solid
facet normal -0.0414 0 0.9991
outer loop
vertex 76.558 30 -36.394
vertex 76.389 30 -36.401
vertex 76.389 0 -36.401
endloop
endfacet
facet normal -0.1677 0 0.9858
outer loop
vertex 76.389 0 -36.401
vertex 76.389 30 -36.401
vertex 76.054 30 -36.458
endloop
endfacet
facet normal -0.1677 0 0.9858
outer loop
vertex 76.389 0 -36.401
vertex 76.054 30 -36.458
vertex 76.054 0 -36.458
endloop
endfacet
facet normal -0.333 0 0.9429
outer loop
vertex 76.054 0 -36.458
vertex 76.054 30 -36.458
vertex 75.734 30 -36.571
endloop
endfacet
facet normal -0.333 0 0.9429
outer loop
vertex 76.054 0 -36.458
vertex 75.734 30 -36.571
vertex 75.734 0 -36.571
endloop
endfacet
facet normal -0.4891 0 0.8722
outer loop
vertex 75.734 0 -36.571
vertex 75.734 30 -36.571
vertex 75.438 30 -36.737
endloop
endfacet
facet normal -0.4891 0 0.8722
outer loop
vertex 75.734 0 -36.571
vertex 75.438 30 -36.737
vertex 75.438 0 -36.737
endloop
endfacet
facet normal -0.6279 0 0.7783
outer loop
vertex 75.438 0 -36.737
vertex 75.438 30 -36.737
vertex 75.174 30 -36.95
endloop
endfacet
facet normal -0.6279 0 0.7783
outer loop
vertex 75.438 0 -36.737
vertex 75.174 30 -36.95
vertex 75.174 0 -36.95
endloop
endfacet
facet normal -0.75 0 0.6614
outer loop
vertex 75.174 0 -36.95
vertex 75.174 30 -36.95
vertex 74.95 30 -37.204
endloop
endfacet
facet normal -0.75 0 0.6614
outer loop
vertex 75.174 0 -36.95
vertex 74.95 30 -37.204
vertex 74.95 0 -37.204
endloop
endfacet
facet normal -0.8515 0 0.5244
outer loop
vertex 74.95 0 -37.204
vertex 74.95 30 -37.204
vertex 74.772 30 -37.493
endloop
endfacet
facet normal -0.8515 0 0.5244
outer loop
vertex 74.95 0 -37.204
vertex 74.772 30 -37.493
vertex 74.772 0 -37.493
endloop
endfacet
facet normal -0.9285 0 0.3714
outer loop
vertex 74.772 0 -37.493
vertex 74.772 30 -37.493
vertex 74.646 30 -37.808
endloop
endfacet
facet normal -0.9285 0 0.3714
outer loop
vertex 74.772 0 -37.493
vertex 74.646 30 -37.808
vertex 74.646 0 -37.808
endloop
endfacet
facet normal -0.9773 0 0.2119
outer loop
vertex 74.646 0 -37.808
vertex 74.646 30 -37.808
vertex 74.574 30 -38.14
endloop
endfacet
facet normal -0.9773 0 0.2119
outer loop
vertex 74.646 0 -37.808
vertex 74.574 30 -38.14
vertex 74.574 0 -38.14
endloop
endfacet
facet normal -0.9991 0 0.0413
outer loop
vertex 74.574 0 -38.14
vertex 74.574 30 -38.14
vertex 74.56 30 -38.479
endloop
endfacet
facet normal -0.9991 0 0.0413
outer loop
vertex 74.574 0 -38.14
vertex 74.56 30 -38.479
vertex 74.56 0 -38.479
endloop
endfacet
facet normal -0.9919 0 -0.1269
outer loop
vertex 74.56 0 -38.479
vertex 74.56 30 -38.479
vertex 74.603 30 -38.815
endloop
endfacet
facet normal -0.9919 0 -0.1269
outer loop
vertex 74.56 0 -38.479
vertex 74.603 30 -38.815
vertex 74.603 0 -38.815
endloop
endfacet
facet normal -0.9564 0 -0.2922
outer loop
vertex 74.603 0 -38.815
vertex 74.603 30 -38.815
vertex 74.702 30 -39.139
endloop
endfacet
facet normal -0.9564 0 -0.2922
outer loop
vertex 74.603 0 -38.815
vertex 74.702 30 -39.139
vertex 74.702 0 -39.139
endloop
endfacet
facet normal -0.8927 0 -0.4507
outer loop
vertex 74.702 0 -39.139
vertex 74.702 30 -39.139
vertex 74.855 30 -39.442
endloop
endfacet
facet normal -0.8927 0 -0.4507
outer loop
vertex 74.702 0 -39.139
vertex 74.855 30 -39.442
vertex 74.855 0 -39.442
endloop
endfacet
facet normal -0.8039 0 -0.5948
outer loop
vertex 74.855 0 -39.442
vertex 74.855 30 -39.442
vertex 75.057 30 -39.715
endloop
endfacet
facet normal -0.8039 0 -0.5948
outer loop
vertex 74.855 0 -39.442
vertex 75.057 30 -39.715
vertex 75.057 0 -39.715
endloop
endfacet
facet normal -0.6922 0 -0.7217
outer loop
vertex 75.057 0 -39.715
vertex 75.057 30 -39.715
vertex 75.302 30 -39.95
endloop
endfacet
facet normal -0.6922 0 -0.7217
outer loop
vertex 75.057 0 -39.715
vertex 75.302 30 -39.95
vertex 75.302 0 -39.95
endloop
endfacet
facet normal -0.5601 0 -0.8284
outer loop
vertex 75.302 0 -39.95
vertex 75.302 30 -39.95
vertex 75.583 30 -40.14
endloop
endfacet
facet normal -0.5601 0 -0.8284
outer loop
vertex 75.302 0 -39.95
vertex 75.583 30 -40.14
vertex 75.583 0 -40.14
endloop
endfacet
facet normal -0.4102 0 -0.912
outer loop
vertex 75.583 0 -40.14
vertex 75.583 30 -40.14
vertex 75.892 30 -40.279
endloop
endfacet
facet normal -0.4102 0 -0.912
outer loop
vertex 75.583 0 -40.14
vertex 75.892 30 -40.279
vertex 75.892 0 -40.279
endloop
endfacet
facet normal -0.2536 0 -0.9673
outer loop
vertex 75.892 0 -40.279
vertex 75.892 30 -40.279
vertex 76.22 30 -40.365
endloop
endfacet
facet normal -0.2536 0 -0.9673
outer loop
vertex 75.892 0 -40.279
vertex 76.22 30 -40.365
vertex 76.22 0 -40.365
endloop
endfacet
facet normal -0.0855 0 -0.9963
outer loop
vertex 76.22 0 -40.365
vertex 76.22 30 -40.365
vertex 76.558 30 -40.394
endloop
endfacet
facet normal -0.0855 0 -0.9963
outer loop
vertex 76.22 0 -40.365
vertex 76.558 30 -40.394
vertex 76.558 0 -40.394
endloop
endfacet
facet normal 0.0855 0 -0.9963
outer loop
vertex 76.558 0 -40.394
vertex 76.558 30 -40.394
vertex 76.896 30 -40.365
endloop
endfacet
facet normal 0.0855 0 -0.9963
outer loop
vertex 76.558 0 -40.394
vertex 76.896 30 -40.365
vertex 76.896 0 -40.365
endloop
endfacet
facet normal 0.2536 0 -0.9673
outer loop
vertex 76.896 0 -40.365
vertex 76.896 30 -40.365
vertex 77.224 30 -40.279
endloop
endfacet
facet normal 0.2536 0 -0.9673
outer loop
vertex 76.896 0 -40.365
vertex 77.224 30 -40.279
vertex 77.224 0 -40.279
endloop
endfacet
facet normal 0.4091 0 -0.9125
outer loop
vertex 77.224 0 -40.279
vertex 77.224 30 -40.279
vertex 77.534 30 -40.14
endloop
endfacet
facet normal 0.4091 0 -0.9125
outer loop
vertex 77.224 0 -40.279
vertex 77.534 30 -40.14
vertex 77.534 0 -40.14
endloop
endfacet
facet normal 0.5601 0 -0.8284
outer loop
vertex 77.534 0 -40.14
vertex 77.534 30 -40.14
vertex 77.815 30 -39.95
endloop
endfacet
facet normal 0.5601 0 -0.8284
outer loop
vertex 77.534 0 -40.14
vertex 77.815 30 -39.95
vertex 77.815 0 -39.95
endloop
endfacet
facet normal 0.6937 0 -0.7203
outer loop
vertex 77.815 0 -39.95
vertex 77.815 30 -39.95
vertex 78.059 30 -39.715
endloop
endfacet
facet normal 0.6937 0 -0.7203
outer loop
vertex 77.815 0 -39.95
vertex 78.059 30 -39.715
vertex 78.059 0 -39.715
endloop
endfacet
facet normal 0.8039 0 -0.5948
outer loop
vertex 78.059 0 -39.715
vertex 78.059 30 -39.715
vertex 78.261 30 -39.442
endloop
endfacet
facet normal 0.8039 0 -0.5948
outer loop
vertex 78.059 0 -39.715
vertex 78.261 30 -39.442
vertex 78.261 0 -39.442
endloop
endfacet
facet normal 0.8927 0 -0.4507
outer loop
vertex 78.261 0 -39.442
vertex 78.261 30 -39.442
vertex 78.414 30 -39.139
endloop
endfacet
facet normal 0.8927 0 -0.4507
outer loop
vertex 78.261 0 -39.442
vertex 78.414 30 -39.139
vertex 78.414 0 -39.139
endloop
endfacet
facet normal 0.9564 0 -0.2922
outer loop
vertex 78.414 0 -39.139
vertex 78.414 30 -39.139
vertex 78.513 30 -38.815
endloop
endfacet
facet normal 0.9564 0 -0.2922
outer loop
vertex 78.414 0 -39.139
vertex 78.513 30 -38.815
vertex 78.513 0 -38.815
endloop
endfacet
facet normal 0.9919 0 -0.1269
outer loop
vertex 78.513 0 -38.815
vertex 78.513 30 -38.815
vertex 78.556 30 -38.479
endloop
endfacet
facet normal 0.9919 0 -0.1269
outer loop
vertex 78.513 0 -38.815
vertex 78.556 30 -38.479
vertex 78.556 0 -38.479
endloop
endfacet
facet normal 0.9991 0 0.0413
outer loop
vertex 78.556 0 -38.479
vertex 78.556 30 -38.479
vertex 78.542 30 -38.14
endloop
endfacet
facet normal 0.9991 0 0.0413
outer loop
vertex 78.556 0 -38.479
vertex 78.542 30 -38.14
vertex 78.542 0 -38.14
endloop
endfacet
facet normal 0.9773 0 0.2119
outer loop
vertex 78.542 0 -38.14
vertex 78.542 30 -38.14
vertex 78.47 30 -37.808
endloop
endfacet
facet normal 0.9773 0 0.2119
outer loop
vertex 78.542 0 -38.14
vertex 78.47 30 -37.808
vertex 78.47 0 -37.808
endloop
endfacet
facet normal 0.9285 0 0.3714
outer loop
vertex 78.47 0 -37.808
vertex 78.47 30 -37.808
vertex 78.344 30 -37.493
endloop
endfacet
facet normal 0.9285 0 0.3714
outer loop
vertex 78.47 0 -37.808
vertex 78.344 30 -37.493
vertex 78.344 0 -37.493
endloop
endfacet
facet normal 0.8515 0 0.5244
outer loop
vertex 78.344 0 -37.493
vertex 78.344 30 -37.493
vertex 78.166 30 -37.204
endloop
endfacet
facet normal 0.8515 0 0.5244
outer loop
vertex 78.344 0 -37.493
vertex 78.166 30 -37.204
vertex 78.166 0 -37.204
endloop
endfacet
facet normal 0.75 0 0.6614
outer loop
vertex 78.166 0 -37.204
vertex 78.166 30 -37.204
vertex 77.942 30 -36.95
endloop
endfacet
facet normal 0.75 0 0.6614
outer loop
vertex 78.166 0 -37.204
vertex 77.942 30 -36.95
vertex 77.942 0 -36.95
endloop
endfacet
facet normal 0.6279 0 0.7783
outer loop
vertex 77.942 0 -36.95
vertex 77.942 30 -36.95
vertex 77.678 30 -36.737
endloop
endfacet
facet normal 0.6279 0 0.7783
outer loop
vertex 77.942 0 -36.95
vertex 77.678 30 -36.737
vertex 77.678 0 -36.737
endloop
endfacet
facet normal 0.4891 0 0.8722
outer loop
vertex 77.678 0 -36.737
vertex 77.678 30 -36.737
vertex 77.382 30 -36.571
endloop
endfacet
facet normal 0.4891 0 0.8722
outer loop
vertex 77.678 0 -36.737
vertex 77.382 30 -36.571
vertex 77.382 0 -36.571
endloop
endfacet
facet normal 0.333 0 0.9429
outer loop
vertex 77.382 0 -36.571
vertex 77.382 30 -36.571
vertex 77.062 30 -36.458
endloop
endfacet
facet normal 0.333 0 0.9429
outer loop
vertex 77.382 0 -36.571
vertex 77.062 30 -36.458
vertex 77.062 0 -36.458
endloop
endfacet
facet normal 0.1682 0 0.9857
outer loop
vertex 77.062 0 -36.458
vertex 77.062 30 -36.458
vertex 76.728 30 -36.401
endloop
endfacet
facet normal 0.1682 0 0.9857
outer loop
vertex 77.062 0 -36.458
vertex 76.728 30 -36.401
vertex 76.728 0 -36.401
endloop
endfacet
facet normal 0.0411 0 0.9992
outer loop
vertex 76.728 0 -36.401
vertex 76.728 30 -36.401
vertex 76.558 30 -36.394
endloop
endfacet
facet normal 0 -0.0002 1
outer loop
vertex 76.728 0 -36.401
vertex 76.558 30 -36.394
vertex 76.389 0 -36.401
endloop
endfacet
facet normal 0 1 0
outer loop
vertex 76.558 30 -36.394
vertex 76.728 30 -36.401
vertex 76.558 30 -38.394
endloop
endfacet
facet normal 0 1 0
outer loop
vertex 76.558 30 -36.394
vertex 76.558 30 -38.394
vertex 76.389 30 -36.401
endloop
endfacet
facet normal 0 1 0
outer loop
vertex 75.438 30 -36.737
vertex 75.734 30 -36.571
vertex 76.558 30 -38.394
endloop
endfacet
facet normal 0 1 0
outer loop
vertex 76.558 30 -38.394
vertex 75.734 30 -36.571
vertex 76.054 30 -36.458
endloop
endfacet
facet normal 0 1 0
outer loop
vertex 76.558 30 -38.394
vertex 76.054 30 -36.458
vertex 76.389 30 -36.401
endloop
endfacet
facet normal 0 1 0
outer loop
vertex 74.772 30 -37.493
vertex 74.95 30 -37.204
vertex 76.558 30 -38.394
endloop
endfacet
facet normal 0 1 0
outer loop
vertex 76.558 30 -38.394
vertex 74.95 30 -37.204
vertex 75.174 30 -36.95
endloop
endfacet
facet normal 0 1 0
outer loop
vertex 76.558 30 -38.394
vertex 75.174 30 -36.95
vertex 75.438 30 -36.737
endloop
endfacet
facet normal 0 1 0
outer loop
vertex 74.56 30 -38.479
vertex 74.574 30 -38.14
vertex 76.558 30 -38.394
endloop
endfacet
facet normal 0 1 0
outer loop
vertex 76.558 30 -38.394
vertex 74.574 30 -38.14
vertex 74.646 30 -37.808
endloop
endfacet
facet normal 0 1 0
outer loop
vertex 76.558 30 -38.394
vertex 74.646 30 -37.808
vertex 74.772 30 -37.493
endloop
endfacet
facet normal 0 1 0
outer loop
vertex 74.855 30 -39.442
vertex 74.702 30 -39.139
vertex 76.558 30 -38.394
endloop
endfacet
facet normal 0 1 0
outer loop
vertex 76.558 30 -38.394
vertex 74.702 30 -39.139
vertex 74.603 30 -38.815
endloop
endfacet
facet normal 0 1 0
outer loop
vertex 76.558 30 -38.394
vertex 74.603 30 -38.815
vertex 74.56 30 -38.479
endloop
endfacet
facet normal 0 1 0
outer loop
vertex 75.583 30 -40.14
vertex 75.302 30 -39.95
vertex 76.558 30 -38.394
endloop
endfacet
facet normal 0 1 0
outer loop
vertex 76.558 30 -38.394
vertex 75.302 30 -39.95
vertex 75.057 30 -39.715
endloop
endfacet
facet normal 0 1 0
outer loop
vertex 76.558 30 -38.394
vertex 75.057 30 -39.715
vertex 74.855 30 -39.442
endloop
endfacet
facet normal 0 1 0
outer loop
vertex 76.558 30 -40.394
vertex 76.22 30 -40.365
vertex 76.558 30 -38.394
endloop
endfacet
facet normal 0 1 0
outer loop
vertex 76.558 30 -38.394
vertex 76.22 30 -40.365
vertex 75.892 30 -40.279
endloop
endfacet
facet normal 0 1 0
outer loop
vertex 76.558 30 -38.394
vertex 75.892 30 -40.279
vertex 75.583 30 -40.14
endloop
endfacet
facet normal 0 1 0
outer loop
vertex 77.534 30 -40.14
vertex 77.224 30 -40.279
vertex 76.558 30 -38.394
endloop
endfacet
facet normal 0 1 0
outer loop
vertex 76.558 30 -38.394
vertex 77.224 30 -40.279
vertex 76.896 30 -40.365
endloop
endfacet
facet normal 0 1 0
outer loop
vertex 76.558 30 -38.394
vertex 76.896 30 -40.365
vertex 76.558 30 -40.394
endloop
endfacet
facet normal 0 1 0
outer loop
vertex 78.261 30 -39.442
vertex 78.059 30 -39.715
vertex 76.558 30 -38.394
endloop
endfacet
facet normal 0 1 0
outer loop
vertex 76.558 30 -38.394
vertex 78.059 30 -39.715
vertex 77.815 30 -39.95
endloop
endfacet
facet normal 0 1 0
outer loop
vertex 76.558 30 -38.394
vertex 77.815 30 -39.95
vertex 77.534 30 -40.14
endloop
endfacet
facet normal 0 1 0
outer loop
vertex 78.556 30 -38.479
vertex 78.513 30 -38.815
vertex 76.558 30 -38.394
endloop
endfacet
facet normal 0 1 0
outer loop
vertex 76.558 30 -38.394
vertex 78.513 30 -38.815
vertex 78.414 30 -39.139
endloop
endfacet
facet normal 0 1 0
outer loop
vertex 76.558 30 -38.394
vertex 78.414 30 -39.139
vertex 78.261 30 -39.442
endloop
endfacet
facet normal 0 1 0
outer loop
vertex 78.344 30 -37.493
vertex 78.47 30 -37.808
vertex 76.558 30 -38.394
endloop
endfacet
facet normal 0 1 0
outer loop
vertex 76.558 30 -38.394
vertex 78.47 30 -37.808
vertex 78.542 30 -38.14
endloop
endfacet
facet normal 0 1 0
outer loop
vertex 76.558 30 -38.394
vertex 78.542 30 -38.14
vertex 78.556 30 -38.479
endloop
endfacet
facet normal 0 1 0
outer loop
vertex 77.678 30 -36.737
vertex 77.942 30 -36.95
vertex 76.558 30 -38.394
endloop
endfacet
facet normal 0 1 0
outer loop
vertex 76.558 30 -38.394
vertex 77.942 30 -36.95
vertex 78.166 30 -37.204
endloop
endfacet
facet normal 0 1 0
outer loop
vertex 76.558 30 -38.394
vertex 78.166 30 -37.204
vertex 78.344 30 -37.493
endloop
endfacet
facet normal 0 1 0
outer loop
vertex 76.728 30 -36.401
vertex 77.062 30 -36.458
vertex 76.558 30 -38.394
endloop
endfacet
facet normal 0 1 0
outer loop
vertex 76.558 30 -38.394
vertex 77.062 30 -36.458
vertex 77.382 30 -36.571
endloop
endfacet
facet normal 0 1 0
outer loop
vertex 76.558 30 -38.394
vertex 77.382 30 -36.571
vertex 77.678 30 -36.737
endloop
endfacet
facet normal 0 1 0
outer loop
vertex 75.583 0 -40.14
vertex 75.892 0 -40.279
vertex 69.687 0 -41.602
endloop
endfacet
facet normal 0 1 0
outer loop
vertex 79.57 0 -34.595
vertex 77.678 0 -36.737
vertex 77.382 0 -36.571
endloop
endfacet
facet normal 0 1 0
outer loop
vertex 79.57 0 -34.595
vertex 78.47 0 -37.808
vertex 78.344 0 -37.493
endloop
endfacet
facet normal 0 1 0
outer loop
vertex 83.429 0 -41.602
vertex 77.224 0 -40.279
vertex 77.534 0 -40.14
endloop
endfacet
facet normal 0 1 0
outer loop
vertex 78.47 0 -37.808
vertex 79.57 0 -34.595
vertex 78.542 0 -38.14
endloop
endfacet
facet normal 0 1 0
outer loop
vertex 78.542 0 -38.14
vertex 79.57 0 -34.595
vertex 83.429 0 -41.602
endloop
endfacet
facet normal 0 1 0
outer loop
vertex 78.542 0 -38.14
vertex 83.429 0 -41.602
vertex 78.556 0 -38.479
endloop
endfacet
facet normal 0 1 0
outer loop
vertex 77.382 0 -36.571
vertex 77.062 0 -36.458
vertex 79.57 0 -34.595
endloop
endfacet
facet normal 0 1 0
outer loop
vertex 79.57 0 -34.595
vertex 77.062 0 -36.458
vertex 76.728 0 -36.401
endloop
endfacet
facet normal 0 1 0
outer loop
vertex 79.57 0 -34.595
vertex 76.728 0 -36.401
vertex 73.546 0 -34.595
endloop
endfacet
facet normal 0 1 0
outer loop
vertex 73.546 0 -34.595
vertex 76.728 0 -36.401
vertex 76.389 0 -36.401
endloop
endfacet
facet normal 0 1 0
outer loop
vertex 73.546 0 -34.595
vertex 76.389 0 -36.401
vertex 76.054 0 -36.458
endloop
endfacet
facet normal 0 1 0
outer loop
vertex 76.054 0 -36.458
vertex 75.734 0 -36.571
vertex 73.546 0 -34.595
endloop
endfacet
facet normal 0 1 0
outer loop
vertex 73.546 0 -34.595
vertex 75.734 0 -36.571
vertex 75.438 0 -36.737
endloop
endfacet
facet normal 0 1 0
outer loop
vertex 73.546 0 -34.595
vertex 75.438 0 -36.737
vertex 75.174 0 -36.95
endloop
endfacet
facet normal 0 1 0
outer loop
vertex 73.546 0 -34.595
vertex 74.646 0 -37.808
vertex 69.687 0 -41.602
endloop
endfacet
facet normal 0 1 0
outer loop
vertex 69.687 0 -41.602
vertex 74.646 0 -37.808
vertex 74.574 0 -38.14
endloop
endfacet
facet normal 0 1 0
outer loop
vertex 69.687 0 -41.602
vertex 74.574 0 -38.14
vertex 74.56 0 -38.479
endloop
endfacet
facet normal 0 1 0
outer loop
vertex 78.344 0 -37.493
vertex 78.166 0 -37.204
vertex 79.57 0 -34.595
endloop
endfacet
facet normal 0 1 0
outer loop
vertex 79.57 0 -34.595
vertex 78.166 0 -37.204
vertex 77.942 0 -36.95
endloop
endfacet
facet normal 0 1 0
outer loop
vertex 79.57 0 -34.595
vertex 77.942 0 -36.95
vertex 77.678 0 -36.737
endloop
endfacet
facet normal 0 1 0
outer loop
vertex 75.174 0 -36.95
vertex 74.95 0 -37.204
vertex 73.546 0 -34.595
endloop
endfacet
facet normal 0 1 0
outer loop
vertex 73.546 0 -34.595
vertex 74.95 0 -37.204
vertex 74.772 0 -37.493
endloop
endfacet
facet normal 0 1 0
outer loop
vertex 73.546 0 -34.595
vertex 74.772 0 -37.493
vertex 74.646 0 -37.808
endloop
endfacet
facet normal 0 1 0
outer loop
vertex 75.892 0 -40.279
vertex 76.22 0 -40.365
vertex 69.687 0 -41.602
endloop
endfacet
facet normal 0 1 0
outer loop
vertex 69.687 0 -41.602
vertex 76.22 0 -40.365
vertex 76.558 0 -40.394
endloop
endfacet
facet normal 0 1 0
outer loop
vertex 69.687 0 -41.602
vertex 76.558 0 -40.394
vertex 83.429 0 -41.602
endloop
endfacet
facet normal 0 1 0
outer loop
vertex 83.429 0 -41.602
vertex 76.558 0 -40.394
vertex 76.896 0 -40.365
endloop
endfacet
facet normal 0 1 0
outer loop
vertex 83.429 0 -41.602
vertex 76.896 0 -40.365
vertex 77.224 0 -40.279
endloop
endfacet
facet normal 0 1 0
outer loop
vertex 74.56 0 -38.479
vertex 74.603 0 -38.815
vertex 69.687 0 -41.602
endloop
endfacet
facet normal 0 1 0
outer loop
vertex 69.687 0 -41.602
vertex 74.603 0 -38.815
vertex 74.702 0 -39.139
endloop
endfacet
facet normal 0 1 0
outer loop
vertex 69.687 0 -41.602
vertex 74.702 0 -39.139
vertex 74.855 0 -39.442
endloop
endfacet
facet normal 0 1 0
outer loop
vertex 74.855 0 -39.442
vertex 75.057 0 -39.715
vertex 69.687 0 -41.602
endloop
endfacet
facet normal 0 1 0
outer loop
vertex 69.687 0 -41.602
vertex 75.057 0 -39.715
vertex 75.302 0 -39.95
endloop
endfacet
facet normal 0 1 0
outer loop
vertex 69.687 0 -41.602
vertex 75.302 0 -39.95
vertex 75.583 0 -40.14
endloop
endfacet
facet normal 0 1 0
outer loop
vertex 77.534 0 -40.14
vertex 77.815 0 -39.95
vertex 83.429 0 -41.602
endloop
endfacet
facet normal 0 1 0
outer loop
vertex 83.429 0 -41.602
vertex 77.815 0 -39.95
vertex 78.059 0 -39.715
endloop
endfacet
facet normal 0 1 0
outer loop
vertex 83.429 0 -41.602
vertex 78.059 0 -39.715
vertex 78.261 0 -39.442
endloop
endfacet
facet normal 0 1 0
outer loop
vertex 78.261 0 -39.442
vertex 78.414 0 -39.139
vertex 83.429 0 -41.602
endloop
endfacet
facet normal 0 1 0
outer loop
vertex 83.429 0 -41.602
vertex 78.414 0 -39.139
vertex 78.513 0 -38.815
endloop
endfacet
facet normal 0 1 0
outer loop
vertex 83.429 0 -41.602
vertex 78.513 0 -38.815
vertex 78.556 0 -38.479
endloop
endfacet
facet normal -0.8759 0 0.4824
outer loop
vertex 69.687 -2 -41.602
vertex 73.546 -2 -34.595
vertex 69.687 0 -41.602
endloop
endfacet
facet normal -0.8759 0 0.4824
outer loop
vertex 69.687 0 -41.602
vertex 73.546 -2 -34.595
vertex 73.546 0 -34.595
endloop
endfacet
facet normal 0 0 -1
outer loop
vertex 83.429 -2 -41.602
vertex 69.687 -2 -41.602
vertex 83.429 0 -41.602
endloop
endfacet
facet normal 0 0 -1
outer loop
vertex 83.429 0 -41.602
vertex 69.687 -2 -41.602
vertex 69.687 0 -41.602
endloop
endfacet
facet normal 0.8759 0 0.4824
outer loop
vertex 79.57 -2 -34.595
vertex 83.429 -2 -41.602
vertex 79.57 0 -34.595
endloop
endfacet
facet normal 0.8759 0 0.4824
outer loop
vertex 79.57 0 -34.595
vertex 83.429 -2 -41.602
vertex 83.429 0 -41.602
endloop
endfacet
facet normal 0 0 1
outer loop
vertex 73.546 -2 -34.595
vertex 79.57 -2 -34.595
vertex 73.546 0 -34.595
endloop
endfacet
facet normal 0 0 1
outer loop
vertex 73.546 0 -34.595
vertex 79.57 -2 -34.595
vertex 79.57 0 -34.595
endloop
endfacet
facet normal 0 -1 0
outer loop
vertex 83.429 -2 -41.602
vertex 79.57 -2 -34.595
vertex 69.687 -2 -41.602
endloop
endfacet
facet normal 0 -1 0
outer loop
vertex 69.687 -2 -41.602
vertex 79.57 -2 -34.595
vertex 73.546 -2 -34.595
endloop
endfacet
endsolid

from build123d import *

# Parameters (mm, degrees)
SKETCH1_R           = 2
BOSS_EXTRUDE1_DEPTH = 30
BOSS_EXTRUDE2_DEPTH = 2


with BuildPart() as part:
    # Sketch1 → Boss-Extrude1 (new body)
    with BuildSketch(Plane(origin=(0, 0, 0), x_dir=(1, 0, 0), z_dir=(0, 1, 0))):
        with Locations((76.558114335, 38.393702022)):
            Circle(SKETCH1_R)
    extrude(amount=BOSS_EXTRUDE1_DEPTH)

    # Sketch2 → Boss-Extrude2 (add)
    with BuildSketch(Plane.XZ):
        Polygon((79.569925871, -34.594742746), (73.5463028, -34.594742746), (69.687221965, -41.602416762), (83.429006706, -41.602416762), align=None)
    extrude(amount=BOSS_EXTRUDE2_DEPTH)


solid = part.part
